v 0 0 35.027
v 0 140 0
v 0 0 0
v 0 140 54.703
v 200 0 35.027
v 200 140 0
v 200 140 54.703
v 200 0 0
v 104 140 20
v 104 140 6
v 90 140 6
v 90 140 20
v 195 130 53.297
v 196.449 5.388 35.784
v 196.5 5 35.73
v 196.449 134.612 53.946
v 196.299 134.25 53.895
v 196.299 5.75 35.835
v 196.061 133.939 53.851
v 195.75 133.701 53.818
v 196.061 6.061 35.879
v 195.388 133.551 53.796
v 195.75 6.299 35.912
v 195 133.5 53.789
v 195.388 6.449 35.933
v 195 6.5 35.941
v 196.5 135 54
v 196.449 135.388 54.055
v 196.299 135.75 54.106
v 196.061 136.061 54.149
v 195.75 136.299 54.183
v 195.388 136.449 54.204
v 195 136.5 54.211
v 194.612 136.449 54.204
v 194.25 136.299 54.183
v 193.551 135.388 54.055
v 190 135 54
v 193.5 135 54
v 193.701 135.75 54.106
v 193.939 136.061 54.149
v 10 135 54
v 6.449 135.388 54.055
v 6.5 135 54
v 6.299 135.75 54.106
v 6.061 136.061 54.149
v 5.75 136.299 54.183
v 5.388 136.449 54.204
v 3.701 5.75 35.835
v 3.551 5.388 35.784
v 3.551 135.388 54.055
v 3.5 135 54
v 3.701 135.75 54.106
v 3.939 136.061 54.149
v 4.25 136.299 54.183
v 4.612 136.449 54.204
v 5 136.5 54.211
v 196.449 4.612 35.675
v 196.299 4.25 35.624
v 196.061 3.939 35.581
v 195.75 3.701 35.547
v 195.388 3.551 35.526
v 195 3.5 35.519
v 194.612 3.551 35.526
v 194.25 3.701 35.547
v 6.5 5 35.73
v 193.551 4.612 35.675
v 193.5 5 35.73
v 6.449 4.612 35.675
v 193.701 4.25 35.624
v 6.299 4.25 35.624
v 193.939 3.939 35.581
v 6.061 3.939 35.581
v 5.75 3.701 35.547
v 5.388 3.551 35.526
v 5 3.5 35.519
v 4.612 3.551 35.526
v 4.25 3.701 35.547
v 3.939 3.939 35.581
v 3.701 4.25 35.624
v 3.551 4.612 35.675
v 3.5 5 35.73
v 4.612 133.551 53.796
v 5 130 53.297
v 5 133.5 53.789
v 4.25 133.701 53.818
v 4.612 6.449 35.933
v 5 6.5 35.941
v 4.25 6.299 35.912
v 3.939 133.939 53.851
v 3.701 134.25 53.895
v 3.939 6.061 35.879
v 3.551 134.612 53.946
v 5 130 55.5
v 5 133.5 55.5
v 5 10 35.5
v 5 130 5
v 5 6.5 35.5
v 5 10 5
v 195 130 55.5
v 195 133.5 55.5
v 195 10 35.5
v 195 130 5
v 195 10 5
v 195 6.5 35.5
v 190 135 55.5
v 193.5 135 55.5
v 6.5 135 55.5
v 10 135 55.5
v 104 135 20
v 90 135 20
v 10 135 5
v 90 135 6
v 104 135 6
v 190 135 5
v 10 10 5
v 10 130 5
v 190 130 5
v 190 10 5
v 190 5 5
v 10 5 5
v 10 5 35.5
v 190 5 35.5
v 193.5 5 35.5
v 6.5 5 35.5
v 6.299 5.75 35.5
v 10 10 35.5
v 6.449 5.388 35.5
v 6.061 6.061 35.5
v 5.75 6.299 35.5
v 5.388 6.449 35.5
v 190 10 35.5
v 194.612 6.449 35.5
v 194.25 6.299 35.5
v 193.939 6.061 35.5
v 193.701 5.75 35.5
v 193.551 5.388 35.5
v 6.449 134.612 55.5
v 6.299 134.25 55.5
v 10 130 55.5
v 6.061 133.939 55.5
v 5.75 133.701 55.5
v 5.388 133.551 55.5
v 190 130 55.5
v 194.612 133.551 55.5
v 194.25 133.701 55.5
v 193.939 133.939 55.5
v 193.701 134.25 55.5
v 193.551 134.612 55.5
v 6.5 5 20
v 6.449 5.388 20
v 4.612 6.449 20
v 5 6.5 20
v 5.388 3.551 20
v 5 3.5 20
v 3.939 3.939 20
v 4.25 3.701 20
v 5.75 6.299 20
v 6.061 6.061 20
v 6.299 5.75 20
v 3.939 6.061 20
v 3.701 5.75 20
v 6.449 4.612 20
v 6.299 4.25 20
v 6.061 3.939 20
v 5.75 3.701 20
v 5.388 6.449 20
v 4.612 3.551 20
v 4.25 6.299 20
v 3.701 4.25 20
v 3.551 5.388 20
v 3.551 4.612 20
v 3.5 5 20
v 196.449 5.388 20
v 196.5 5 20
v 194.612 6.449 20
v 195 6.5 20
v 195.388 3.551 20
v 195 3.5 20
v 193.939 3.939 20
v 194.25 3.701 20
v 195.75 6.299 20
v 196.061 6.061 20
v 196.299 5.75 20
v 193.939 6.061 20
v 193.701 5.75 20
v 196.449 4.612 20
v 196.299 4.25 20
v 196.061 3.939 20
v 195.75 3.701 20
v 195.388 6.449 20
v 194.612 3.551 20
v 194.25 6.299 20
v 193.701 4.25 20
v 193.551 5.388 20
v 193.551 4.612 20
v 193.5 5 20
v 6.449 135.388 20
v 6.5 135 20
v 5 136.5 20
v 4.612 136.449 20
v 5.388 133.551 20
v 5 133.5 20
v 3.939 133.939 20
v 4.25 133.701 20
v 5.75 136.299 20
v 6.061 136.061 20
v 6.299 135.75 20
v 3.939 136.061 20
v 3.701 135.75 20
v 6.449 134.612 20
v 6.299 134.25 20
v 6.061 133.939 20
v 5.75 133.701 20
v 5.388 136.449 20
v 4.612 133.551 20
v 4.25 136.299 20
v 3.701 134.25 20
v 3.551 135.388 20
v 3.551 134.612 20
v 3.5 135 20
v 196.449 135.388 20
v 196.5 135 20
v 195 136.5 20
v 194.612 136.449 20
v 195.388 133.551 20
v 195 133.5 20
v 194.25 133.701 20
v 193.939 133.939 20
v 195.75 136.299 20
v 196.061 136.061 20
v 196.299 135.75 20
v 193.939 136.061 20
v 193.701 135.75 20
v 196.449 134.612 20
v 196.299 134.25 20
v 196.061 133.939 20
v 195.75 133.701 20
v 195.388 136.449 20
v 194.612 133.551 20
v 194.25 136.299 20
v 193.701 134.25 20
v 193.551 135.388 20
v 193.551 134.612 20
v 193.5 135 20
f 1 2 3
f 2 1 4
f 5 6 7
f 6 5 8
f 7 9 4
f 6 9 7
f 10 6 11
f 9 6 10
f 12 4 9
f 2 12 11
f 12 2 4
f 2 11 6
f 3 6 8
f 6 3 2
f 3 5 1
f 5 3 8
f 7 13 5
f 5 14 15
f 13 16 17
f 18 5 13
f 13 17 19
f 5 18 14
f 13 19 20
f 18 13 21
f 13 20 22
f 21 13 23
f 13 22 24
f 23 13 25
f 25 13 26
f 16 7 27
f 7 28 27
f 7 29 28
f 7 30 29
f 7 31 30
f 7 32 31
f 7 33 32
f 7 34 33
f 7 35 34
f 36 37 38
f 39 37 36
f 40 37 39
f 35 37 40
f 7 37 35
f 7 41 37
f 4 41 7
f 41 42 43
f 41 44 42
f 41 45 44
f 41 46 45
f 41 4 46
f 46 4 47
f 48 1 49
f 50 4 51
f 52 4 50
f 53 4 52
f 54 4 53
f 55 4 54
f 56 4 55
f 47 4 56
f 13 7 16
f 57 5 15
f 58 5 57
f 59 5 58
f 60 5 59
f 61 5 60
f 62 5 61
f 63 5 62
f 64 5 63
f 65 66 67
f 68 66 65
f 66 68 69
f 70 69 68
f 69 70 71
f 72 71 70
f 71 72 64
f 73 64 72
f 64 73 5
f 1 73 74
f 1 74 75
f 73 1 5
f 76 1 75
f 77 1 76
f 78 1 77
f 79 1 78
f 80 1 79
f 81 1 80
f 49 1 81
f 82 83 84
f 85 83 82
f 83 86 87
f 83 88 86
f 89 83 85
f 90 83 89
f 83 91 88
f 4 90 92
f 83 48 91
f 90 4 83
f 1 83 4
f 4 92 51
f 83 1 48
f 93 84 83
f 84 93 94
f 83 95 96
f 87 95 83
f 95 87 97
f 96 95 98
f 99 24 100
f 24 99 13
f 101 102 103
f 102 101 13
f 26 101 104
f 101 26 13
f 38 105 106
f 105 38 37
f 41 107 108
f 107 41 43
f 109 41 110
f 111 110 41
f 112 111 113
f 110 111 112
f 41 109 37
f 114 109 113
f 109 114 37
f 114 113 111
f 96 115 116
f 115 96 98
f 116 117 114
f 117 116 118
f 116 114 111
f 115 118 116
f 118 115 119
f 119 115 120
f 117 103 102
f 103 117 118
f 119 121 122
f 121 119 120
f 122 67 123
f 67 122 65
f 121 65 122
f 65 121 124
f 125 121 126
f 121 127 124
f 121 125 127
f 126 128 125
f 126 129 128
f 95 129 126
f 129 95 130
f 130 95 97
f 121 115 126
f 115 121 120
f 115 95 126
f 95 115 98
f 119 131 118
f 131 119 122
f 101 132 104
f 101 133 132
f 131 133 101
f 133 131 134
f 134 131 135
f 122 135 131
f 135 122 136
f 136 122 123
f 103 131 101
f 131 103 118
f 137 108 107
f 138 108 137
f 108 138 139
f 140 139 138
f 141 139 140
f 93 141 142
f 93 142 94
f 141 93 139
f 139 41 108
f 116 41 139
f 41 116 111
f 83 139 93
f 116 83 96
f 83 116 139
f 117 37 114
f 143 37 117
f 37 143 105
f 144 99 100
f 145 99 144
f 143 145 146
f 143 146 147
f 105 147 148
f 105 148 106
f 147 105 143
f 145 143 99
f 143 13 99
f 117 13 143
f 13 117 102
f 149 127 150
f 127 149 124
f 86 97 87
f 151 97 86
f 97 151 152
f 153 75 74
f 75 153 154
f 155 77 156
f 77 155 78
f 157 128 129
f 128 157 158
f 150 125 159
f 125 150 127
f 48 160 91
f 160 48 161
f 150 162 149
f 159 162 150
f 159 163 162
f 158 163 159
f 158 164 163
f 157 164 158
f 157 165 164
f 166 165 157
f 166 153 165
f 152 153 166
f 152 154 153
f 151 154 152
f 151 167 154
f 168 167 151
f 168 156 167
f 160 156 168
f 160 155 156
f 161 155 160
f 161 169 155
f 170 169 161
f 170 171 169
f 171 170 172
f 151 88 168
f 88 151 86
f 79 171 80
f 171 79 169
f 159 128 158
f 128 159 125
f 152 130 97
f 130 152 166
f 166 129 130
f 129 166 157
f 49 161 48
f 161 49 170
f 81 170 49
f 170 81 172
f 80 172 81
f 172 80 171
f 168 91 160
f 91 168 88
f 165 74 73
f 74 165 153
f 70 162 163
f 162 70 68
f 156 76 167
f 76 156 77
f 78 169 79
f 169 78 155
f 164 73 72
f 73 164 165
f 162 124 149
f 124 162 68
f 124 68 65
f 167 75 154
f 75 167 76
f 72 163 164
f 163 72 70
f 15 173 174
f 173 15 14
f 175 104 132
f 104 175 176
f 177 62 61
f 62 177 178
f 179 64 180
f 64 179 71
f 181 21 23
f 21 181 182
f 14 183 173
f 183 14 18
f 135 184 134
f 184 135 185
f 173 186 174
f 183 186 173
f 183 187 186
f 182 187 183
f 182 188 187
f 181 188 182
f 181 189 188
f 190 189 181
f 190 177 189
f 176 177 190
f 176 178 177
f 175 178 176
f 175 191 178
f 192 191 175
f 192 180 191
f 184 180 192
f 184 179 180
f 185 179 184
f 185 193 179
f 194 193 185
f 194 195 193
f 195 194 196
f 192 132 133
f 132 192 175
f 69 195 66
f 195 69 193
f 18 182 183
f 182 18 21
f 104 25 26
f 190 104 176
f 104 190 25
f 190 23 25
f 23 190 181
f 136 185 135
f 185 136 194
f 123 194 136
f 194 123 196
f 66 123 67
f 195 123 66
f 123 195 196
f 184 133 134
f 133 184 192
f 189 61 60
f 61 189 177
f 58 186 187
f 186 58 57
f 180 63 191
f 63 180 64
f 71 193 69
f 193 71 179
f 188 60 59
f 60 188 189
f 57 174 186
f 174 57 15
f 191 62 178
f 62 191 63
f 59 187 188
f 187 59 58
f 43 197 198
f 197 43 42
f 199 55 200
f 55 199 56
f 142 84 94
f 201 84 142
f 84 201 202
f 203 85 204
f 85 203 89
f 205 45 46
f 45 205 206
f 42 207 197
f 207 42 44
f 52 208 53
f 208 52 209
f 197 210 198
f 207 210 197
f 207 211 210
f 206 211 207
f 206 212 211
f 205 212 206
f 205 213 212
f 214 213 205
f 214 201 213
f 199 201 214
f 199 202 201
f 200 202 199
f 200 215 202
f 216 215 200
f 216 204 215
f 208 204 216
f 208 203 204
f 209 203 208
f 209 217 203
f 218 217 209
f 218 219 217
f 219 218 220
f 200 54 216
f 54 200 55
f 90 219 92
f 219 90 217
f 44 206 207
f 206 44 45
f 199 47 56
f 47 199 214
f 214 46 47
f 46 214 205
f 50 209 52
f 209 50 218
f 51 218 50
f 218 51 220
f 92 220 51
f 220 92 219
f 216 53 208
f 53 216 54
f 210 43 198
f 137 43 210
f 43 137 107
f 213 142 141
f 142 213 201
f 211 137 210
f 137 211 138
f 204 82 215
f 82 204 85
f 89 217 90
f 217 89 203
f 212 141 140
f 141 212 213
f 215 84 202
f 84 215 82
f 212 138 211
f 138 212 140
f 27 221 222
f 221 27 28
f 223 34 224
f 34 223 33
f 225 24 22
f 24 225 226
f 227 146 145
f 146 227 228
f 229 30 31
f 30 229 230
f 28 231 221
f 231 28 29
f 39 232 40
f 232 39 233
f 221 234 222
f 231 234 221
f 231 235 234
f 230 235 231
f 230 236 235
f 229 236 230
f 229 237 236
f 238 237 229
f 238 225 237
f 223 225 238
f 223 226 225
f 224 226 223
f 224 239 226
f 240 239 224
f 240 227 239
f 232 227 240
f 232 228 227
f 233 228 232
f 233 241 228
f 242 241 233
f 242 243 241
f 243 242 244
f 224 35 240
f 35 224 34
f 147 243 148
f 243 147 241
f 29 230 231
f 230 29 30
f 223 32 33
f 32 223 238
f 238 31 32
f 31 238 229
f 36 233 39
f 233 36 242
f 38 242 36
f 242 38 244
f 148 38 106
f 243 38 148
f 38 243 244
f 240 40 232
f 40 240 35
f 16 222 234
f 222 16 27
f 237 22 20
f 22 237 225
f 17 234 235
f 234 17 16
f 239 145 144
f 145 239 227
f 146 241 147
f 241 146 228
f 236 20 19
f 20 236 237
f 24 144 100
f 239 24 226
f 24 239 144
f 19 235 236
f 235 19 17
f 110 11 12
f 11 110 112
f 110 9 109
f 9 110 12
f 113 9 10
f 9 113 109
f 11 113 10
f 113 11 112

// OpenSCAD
// box walls
module walls() {
    difference() {
        cube([200,140,55]);

        translate([-50,-50,28])
        rotate([8,0,0])
        cube([300,300,50]);
        
        translate([5,5,5])
        cube([190,130,55]);
    }
    
    //screw columns
    translate([5,5,0])
    cube ([5,5,35.5]);
    translate([190,5,0])
    cube ([5,5,35.5]);
    translate([5,130,0])
    cube ([5,5,55.5]);
    translate([190,130,0])
    cube ([5,5,55.5]);
}

difference() {
    walls();

    // screw holes
    translate([5,5,20])
    cylinder(r1=1.5, r2=1.5, h=165, $fn=24);         
    translate([195,5,20])
    cylinder(r1=1.5, r2=1.5, h=165, $fn=24);         
    translate([5,135,20])
    cylinder(r1=1.5, r2=1.5, h=165, $fn=24);         
    translate([195,135,20])
    cylinder(r1=1.5, r2=1.5, h=165, $fn=24);     
    
    // arduino usb connector
    translate([90,100,6])
    cube([14, 100,14]);
}




//translate([00,-10,0])
//cube([300,10,35]);

//translate([00,140,0])
//cube([300,10,55]);
